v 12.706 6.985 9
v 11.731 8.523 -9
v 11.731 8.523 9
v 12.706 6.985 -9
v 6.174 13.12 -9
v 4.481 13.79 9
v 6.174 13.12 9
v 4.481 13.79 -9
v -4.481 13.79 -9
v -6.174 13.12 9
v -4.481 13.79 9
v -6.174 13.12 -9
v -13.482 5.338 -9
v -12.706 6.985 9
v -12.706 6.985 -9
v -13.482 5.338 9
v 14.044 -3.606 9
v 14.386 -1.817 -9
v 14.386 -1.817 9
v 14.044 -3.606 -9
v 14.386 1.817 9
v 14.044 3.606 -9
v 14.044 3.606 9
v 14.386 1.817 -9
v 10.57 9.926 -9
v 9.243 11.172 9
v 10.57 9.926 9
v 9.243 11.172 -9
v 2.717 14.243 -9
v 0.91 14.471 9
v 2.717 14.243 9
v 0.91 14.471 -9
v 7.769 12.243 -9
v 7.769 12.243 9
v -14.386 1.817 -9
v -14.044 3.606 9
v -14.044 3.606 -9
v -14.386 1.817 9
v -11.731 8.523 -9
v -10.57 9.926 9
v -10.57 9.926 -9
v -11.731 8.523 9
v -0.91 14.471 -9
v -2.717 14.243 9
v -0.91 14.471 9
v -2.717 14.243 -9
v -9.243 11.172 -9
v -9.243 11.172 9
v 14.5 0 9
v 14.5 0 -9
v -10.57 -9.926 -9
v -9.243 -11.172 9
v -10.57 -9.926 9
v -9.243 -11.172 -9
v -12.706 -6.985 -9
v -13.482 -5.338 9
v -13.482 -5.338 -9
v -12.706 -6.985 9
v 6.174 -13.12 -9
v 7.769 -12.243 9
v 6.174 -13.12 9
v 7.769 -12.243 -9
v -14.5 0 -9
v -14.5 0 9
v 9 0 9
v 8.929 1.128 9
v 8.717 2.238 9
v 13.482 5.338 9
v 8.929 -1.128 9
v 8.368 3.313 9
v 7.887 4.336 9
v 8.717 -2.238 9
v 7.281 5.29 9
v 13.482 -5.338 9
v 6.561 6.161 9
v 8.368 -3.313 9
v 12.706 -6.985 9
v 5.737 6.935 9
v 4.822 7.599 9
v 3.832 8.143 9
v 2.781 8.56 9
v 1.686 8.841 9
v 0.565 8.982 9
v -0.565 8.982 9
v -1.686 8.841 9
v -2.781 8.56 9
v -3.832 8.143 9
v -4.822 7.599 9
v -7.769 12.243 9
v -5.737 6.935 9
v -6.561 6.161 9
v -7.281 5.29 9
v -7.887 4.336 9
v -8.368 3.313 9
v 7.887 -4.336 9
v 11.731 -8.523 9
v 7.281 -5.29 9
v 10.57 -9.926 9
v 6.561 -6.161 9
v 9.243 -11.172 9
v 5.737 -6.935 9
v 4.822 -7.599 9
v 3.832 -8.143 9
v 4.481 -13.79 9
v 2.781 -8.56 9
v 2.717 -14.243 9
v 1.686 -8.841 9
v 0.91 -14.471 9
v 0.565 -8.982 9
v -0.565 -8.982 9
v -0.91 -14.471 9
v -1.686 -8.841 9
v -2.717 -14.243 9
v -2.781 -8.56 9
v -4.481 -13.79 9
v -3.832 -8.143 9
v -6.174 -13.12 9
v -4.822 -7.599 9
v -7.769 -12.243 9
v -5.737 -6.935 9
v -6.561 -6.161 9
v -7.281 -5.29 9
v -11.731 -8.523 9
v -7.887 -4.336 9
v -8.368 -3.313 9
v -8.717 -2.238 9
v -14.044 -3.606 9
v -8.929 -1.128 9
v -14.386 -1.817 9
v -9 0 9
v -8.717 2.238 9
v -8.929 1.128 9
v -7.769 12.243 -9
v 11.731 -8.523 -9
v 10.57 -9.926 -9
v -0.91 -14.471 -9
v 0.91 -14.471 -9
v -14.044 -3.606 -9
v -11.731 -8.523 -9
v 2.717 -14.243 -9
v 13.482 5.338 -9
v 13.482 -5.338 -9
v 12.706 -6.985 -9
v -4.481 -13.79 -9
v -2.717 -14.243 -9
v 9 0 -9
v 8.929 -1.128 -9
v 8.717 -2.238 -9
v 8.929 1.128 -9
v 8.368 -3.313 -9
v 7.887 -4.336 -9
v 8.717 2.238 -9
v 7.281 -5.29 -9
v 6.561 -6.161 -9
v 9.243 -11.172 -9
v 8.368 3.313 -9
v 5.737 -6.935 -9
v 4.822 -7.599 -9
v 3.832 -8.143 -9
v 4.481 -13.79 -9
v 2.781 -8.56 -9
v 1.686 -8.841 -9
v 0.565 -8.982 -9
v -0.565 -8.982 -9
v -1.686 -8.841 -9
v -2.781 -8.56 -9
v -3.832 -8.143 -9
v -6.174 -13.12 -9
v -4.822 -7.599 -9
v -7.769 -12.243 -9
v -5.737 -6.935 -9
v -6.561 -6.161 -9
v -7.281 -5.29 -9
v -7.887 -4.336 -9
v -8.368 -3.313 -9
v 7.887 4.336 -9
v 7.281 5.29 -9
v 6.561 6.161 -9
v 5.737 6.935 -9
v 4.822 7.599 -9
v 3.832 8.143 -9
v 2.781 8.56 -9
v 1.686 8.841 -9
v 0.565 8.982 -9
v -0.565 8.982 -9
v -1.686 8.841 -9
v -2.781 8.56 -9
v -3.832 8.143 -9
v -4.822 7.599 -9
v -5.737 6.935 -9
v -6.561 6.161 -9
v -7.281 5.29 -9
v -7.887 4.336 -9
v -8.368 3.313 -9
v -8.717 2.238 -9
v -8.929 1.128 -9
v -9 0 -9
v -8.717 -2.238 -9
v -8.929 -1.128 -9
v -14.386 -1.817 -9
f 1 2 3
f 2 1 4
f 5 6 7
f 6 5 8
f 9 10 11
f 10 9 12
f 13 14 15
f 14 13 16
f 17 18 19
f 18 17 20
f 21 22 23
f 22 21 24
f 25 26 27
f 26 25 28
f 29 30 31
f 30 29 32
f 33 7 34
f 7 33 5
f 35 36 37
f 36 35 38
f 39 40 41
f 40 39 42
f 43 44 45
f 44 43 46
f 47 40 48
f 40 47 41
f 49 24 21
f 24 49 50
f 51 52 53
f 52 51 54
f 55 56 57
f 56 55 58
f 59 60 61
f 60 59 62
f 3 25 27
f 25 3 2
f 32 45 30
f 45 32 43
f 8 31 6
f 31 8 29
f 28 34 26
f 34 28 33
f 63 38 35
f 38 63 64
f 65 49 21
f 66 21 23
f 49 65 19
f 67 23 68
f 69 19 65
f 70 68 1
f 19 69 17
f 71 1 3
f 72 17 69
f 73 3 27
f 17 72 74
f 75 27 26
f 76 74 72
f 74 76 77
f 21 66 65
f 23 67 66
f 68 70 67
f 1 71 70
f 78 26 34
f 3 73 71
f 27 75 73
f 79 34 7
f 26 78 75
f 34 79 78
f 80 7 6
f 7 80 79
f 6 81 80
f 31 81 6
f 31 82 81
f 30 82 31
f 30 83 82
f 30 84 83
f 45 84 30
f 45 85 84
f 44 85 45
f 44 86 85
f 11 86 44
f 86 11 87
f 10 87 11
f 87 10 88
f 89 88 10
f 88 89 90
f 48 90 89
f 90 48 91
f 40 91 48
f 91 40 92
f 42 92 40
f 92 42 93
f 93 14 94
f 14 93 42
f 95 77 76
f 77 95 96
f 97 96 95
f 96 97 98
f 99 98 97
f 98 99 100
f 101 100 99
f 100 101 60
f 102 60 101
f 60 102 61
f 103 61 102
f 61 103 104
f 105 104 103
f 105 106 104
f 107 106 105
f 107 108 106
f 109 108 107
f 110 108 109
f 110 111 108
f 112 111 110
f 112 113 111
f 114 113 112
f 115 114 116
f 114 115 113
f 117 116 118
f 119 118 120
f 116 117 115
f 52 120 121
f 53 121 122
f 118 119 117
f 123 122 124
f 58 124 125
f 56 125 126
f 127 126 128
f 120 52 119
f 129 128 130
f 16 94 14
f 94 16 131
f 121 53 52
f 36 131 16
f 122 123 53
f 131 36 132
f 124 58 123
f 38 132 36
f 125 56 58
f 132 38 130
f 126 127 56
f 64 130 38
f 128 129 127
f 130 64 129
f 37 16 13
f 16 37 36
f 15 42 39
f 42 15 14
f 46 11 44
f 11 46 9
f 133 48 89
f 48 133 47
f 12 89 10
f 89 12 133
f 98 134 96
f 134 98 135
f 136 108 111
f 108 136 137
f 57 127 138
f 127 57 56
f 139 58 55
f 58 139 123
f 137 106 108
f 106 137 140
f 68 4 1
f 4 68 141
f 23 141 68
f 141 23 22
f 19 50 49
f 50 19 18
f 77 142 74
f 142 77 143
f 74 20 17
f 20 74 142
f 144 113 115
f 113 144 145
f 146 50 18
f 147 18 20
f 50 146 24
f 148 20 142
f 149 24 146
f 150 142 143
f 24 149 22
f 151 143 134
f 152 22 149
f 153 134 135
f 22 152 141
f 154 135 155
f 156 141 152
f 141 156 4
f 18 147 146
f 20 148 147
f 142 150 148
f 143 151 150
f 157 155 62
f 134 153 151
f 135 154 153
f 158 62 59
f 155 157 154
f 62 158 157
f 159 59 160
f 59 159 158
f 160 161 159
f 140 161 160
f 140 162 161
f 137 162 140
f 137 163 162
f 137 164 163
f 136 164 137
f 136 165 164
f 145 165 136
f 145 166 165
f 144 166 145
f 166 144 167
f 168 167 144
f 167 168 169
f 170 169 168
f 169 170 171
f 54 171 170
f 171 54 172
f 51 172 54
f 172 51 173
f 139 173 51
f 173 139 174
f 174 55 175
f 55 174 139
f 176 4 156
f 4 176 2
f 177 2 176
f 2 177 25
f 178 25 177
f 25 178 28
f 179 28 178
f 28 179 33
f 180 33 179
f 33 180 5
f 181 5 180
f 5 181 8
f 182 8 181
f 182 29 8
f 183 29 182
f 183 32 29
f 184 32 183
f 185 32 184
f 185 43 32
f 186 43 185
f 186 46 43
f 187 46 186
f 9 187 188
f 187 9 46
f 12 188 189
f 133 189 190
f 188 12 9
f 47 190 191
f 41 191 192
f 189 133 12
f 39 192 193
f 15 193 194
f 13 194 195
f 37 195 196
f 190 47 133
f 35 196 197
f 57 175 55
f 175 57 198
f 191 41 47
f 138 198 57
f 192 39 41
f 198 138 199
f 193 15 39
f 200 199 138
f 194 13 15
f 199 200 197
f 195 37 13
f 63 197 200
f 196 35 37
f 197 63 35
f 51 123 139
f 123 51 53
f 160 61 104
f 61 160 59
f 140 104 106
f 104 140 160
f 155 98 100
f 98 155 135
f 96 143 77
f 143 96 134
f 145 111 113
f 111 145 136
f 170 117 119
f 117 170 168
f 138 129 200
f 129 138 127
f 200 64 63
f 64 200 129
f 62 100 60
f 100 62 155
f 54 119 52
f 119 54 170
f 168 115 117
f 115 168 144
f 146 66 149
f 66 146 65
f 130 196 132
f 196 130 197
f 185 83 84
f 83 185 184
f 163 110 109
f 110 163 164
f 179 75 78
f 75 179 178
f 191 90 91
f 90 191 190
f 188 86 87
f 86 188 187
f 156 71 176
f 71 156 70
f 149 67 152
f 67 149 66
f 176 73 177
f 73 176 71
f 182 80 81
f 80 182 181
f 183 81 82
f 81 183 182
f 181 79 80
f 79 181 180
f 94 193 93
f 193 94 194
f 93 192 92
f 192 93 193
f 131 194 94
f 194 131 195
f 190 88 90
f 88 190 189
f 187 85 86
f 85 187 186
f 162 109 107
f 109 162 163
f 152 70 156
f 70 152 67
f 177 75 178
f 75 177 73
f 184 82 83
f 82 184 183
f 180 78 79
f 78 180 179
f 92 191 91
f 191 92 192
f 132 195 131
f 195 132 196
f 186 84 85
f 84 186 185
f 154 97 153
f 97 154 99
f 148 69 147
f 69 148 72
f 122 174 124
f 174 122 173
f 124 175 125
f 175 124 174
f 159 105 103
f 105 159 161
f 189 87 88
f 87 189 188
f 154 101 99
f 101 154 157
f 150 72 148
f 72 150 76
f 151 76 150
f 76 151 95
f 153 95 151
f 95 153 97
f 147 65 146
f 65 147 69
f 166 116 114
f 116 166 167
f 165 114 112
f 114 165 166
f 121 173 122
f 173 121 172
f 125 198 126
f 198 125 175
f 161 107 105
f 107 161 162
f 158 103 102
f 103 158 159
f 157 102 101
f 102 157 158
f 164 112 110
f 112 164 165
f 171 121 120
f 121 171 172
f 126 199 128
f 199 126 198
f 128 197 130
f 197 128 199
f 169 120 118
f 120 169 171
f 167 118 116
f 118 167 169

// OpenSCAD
$fn = 50;


difference() {
	union() {
		translate(v = [0, 0, -9.0000000000]) {
			cylinder(h = 18, r = 14.5000000000);
		}
	}
	union() {
		translate(v = [0, 0, -100.0000000000]) {
			cylinder(h = 200, r = 9);
		}
	}
}
